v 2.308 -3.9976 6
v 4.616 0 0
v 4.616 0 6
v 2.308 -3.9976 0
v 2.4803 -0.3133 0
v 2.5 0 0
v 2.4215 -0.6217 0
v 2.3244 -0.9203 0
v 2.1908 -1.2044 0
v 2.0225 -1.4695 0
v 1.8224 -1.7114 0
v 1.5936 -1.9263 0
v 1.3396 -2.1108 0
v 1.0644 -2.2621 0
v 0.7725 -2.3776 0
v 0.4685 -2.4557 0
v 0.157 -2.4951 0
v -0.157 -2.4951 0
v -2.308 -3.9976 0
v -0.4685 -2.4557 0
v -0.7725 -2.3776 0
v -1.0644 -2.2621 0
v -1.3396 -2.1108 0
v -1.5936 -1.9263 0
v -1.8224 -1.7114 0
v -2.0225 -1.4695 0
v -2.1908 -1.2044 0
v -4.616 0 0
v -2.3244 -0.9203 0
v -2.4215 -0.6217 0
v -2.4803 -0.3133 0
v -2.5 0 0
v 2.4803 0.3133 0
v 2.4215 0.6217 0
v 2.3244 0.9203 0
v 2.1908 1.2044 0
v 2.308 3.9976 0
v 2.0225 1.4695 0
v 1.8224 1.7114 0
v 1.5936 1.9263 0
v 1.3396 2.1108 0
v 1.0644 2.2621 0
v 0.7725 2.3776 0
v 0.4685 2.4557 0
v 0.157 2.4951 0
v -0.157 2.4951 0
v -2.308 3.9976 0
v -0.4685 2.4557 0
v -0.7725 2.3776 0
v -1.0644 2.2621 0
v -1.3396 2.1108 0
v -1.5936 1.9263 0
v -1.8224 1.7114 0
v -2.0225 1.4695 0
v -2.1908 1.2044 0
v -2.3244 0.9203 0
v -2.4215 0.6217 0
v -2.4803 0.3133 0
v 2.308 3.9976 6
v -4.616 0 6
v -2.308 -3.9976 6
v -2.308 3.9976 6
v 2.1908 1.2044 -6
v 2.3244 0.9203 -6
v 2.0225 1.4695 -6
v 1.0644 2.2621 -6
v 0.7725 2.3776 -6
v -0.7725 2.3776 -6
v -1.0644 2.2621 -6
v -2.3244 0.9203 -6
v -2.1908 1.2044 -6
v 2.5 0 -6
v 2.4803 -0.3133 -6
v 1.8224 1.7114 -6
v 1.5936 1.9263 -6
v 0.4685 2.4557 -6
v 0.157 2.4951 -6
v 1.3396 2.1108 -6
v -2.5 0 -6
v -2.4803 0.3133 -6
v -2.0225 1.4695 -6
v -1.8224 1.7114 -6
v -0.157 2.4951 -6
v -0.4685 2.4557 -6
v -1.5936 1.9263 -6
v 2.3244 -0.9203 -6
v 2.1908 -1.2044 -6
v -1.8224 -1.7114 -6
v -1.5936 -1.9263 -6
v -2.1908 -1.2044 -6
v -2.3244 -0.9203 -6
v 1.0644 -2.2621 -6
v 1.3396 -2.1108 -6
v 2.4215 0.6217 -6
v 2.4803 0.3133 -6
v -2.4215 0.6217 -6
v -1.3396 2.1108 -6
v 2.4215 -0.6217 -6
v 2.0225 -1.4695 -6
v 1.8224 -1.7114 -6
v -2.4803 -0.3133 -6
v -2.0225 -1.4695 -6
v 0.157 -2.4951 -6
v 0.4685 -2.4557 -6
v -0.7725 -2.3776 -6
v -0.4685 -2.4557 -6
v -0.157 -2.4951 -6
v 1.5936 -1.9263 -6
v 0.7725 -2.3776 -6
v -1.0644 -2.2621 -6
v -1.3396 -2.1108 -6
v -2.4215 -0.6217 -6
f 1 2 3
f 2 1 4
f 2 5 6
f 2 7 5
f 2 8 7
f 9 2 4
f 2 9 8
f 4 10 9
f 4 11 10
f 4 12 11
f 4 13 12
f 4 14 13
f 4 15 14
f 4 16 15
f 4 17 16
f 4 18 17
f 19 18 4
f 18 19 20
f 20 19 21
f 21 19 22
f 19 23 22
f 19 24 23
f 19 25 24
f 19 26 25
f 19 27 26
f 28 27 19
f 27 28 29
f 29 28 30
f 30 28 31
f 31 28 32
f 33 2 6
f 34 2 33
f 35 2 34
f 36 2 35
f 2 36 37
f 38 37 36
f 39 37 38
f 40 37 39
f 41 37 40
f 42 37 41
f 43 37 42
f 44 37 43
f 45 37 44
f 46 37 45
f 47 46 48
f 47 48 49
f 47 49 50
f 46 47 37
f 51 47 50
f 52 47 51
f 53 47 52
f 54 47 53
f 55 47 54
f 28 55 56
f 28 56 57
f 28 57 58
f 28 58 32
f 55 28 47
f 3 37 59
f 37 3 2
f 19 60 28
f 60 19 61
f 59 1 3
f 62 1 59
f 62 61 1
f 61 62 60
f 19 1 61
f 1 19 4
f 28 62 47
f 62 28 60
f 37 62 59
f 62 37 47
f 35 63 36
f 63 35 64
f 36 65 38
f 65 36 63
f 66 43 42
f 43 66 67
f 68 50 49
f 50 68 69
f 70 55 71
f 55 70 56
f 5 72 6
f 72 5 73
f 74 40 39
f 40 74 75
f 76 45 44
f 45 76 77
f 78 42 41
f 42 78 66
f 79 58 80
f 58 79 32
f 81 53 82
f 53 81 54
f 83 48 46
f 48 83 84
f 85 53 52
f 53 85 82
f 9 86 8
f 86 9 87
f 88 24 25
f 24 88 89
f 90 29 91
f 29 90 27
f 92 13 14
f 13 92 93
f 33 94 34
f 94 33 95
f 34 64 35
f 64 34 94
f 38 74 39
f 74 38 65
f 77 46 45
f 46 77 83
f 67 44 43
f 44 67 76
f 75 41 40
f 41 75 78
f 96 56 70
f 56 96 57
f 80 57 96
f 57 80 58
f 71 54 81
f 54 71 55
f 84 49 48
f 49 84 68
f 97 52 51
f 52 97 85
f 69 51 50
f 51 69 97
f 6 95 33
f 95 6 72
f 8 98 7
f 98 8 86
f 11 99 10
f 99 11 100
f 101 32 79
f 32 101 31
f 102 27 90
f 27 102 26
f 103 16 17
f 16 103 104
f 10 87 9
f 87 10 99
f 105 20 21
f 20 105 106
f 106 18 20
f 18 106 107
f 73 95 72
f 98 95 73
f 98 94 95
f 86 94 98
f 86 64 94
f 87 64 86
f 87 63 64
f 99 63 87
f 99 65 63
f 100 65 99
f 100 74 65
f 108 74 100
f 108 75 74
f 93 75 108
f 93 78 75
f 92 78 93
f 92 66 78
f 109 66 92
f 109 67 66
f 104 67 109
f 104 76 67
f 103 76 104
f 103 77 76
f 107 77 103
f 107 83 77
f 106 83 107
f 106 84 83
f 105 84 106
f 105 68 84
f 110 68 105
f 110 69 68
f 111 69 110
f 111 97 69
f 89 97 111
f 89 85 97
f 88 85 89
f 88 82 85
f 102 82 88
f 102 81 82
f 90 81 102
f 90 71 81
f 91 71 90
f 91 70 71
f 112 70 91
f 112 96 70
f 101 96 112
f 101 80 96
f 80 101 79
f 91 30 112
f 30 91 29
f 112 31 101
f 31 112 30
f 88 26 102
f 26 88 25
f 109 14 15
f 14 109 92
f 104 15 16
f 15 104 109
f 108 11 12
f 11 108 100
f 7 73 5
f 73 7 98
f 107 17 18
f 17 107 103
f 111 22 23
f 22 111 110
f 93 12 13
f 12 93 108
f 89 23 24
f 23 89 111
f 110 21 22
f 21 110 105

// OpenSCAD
$fn = 50;


difference() {
	union() {
		translate(v = [0, 0, 0]) {
			rotate(a = [0, 0, 0]) {
				translate(v = [0, 0, 0]) {
					rotate(a = [0, 0, 0]) {
						linear_extrude(height = 6) {
							polygon(points = [[4.6160000000, 0.0000000000], [2.3080000000, 3.9975732639], [-2.3080000000, 3.9975732639], [-4.6160000000, 0.0000000000], [-2.3080000000, -3.9975732639], [2.3080000000, -3.9975732639]]);
						}
					}
				}
			}
		}
		translate(v = [0, 0, -6]) {
			rotate(a = [0, 0, 0]) {
				cylinder(h = 6, r = 2.5000000000);
			}
		}
	}
	union();
}
